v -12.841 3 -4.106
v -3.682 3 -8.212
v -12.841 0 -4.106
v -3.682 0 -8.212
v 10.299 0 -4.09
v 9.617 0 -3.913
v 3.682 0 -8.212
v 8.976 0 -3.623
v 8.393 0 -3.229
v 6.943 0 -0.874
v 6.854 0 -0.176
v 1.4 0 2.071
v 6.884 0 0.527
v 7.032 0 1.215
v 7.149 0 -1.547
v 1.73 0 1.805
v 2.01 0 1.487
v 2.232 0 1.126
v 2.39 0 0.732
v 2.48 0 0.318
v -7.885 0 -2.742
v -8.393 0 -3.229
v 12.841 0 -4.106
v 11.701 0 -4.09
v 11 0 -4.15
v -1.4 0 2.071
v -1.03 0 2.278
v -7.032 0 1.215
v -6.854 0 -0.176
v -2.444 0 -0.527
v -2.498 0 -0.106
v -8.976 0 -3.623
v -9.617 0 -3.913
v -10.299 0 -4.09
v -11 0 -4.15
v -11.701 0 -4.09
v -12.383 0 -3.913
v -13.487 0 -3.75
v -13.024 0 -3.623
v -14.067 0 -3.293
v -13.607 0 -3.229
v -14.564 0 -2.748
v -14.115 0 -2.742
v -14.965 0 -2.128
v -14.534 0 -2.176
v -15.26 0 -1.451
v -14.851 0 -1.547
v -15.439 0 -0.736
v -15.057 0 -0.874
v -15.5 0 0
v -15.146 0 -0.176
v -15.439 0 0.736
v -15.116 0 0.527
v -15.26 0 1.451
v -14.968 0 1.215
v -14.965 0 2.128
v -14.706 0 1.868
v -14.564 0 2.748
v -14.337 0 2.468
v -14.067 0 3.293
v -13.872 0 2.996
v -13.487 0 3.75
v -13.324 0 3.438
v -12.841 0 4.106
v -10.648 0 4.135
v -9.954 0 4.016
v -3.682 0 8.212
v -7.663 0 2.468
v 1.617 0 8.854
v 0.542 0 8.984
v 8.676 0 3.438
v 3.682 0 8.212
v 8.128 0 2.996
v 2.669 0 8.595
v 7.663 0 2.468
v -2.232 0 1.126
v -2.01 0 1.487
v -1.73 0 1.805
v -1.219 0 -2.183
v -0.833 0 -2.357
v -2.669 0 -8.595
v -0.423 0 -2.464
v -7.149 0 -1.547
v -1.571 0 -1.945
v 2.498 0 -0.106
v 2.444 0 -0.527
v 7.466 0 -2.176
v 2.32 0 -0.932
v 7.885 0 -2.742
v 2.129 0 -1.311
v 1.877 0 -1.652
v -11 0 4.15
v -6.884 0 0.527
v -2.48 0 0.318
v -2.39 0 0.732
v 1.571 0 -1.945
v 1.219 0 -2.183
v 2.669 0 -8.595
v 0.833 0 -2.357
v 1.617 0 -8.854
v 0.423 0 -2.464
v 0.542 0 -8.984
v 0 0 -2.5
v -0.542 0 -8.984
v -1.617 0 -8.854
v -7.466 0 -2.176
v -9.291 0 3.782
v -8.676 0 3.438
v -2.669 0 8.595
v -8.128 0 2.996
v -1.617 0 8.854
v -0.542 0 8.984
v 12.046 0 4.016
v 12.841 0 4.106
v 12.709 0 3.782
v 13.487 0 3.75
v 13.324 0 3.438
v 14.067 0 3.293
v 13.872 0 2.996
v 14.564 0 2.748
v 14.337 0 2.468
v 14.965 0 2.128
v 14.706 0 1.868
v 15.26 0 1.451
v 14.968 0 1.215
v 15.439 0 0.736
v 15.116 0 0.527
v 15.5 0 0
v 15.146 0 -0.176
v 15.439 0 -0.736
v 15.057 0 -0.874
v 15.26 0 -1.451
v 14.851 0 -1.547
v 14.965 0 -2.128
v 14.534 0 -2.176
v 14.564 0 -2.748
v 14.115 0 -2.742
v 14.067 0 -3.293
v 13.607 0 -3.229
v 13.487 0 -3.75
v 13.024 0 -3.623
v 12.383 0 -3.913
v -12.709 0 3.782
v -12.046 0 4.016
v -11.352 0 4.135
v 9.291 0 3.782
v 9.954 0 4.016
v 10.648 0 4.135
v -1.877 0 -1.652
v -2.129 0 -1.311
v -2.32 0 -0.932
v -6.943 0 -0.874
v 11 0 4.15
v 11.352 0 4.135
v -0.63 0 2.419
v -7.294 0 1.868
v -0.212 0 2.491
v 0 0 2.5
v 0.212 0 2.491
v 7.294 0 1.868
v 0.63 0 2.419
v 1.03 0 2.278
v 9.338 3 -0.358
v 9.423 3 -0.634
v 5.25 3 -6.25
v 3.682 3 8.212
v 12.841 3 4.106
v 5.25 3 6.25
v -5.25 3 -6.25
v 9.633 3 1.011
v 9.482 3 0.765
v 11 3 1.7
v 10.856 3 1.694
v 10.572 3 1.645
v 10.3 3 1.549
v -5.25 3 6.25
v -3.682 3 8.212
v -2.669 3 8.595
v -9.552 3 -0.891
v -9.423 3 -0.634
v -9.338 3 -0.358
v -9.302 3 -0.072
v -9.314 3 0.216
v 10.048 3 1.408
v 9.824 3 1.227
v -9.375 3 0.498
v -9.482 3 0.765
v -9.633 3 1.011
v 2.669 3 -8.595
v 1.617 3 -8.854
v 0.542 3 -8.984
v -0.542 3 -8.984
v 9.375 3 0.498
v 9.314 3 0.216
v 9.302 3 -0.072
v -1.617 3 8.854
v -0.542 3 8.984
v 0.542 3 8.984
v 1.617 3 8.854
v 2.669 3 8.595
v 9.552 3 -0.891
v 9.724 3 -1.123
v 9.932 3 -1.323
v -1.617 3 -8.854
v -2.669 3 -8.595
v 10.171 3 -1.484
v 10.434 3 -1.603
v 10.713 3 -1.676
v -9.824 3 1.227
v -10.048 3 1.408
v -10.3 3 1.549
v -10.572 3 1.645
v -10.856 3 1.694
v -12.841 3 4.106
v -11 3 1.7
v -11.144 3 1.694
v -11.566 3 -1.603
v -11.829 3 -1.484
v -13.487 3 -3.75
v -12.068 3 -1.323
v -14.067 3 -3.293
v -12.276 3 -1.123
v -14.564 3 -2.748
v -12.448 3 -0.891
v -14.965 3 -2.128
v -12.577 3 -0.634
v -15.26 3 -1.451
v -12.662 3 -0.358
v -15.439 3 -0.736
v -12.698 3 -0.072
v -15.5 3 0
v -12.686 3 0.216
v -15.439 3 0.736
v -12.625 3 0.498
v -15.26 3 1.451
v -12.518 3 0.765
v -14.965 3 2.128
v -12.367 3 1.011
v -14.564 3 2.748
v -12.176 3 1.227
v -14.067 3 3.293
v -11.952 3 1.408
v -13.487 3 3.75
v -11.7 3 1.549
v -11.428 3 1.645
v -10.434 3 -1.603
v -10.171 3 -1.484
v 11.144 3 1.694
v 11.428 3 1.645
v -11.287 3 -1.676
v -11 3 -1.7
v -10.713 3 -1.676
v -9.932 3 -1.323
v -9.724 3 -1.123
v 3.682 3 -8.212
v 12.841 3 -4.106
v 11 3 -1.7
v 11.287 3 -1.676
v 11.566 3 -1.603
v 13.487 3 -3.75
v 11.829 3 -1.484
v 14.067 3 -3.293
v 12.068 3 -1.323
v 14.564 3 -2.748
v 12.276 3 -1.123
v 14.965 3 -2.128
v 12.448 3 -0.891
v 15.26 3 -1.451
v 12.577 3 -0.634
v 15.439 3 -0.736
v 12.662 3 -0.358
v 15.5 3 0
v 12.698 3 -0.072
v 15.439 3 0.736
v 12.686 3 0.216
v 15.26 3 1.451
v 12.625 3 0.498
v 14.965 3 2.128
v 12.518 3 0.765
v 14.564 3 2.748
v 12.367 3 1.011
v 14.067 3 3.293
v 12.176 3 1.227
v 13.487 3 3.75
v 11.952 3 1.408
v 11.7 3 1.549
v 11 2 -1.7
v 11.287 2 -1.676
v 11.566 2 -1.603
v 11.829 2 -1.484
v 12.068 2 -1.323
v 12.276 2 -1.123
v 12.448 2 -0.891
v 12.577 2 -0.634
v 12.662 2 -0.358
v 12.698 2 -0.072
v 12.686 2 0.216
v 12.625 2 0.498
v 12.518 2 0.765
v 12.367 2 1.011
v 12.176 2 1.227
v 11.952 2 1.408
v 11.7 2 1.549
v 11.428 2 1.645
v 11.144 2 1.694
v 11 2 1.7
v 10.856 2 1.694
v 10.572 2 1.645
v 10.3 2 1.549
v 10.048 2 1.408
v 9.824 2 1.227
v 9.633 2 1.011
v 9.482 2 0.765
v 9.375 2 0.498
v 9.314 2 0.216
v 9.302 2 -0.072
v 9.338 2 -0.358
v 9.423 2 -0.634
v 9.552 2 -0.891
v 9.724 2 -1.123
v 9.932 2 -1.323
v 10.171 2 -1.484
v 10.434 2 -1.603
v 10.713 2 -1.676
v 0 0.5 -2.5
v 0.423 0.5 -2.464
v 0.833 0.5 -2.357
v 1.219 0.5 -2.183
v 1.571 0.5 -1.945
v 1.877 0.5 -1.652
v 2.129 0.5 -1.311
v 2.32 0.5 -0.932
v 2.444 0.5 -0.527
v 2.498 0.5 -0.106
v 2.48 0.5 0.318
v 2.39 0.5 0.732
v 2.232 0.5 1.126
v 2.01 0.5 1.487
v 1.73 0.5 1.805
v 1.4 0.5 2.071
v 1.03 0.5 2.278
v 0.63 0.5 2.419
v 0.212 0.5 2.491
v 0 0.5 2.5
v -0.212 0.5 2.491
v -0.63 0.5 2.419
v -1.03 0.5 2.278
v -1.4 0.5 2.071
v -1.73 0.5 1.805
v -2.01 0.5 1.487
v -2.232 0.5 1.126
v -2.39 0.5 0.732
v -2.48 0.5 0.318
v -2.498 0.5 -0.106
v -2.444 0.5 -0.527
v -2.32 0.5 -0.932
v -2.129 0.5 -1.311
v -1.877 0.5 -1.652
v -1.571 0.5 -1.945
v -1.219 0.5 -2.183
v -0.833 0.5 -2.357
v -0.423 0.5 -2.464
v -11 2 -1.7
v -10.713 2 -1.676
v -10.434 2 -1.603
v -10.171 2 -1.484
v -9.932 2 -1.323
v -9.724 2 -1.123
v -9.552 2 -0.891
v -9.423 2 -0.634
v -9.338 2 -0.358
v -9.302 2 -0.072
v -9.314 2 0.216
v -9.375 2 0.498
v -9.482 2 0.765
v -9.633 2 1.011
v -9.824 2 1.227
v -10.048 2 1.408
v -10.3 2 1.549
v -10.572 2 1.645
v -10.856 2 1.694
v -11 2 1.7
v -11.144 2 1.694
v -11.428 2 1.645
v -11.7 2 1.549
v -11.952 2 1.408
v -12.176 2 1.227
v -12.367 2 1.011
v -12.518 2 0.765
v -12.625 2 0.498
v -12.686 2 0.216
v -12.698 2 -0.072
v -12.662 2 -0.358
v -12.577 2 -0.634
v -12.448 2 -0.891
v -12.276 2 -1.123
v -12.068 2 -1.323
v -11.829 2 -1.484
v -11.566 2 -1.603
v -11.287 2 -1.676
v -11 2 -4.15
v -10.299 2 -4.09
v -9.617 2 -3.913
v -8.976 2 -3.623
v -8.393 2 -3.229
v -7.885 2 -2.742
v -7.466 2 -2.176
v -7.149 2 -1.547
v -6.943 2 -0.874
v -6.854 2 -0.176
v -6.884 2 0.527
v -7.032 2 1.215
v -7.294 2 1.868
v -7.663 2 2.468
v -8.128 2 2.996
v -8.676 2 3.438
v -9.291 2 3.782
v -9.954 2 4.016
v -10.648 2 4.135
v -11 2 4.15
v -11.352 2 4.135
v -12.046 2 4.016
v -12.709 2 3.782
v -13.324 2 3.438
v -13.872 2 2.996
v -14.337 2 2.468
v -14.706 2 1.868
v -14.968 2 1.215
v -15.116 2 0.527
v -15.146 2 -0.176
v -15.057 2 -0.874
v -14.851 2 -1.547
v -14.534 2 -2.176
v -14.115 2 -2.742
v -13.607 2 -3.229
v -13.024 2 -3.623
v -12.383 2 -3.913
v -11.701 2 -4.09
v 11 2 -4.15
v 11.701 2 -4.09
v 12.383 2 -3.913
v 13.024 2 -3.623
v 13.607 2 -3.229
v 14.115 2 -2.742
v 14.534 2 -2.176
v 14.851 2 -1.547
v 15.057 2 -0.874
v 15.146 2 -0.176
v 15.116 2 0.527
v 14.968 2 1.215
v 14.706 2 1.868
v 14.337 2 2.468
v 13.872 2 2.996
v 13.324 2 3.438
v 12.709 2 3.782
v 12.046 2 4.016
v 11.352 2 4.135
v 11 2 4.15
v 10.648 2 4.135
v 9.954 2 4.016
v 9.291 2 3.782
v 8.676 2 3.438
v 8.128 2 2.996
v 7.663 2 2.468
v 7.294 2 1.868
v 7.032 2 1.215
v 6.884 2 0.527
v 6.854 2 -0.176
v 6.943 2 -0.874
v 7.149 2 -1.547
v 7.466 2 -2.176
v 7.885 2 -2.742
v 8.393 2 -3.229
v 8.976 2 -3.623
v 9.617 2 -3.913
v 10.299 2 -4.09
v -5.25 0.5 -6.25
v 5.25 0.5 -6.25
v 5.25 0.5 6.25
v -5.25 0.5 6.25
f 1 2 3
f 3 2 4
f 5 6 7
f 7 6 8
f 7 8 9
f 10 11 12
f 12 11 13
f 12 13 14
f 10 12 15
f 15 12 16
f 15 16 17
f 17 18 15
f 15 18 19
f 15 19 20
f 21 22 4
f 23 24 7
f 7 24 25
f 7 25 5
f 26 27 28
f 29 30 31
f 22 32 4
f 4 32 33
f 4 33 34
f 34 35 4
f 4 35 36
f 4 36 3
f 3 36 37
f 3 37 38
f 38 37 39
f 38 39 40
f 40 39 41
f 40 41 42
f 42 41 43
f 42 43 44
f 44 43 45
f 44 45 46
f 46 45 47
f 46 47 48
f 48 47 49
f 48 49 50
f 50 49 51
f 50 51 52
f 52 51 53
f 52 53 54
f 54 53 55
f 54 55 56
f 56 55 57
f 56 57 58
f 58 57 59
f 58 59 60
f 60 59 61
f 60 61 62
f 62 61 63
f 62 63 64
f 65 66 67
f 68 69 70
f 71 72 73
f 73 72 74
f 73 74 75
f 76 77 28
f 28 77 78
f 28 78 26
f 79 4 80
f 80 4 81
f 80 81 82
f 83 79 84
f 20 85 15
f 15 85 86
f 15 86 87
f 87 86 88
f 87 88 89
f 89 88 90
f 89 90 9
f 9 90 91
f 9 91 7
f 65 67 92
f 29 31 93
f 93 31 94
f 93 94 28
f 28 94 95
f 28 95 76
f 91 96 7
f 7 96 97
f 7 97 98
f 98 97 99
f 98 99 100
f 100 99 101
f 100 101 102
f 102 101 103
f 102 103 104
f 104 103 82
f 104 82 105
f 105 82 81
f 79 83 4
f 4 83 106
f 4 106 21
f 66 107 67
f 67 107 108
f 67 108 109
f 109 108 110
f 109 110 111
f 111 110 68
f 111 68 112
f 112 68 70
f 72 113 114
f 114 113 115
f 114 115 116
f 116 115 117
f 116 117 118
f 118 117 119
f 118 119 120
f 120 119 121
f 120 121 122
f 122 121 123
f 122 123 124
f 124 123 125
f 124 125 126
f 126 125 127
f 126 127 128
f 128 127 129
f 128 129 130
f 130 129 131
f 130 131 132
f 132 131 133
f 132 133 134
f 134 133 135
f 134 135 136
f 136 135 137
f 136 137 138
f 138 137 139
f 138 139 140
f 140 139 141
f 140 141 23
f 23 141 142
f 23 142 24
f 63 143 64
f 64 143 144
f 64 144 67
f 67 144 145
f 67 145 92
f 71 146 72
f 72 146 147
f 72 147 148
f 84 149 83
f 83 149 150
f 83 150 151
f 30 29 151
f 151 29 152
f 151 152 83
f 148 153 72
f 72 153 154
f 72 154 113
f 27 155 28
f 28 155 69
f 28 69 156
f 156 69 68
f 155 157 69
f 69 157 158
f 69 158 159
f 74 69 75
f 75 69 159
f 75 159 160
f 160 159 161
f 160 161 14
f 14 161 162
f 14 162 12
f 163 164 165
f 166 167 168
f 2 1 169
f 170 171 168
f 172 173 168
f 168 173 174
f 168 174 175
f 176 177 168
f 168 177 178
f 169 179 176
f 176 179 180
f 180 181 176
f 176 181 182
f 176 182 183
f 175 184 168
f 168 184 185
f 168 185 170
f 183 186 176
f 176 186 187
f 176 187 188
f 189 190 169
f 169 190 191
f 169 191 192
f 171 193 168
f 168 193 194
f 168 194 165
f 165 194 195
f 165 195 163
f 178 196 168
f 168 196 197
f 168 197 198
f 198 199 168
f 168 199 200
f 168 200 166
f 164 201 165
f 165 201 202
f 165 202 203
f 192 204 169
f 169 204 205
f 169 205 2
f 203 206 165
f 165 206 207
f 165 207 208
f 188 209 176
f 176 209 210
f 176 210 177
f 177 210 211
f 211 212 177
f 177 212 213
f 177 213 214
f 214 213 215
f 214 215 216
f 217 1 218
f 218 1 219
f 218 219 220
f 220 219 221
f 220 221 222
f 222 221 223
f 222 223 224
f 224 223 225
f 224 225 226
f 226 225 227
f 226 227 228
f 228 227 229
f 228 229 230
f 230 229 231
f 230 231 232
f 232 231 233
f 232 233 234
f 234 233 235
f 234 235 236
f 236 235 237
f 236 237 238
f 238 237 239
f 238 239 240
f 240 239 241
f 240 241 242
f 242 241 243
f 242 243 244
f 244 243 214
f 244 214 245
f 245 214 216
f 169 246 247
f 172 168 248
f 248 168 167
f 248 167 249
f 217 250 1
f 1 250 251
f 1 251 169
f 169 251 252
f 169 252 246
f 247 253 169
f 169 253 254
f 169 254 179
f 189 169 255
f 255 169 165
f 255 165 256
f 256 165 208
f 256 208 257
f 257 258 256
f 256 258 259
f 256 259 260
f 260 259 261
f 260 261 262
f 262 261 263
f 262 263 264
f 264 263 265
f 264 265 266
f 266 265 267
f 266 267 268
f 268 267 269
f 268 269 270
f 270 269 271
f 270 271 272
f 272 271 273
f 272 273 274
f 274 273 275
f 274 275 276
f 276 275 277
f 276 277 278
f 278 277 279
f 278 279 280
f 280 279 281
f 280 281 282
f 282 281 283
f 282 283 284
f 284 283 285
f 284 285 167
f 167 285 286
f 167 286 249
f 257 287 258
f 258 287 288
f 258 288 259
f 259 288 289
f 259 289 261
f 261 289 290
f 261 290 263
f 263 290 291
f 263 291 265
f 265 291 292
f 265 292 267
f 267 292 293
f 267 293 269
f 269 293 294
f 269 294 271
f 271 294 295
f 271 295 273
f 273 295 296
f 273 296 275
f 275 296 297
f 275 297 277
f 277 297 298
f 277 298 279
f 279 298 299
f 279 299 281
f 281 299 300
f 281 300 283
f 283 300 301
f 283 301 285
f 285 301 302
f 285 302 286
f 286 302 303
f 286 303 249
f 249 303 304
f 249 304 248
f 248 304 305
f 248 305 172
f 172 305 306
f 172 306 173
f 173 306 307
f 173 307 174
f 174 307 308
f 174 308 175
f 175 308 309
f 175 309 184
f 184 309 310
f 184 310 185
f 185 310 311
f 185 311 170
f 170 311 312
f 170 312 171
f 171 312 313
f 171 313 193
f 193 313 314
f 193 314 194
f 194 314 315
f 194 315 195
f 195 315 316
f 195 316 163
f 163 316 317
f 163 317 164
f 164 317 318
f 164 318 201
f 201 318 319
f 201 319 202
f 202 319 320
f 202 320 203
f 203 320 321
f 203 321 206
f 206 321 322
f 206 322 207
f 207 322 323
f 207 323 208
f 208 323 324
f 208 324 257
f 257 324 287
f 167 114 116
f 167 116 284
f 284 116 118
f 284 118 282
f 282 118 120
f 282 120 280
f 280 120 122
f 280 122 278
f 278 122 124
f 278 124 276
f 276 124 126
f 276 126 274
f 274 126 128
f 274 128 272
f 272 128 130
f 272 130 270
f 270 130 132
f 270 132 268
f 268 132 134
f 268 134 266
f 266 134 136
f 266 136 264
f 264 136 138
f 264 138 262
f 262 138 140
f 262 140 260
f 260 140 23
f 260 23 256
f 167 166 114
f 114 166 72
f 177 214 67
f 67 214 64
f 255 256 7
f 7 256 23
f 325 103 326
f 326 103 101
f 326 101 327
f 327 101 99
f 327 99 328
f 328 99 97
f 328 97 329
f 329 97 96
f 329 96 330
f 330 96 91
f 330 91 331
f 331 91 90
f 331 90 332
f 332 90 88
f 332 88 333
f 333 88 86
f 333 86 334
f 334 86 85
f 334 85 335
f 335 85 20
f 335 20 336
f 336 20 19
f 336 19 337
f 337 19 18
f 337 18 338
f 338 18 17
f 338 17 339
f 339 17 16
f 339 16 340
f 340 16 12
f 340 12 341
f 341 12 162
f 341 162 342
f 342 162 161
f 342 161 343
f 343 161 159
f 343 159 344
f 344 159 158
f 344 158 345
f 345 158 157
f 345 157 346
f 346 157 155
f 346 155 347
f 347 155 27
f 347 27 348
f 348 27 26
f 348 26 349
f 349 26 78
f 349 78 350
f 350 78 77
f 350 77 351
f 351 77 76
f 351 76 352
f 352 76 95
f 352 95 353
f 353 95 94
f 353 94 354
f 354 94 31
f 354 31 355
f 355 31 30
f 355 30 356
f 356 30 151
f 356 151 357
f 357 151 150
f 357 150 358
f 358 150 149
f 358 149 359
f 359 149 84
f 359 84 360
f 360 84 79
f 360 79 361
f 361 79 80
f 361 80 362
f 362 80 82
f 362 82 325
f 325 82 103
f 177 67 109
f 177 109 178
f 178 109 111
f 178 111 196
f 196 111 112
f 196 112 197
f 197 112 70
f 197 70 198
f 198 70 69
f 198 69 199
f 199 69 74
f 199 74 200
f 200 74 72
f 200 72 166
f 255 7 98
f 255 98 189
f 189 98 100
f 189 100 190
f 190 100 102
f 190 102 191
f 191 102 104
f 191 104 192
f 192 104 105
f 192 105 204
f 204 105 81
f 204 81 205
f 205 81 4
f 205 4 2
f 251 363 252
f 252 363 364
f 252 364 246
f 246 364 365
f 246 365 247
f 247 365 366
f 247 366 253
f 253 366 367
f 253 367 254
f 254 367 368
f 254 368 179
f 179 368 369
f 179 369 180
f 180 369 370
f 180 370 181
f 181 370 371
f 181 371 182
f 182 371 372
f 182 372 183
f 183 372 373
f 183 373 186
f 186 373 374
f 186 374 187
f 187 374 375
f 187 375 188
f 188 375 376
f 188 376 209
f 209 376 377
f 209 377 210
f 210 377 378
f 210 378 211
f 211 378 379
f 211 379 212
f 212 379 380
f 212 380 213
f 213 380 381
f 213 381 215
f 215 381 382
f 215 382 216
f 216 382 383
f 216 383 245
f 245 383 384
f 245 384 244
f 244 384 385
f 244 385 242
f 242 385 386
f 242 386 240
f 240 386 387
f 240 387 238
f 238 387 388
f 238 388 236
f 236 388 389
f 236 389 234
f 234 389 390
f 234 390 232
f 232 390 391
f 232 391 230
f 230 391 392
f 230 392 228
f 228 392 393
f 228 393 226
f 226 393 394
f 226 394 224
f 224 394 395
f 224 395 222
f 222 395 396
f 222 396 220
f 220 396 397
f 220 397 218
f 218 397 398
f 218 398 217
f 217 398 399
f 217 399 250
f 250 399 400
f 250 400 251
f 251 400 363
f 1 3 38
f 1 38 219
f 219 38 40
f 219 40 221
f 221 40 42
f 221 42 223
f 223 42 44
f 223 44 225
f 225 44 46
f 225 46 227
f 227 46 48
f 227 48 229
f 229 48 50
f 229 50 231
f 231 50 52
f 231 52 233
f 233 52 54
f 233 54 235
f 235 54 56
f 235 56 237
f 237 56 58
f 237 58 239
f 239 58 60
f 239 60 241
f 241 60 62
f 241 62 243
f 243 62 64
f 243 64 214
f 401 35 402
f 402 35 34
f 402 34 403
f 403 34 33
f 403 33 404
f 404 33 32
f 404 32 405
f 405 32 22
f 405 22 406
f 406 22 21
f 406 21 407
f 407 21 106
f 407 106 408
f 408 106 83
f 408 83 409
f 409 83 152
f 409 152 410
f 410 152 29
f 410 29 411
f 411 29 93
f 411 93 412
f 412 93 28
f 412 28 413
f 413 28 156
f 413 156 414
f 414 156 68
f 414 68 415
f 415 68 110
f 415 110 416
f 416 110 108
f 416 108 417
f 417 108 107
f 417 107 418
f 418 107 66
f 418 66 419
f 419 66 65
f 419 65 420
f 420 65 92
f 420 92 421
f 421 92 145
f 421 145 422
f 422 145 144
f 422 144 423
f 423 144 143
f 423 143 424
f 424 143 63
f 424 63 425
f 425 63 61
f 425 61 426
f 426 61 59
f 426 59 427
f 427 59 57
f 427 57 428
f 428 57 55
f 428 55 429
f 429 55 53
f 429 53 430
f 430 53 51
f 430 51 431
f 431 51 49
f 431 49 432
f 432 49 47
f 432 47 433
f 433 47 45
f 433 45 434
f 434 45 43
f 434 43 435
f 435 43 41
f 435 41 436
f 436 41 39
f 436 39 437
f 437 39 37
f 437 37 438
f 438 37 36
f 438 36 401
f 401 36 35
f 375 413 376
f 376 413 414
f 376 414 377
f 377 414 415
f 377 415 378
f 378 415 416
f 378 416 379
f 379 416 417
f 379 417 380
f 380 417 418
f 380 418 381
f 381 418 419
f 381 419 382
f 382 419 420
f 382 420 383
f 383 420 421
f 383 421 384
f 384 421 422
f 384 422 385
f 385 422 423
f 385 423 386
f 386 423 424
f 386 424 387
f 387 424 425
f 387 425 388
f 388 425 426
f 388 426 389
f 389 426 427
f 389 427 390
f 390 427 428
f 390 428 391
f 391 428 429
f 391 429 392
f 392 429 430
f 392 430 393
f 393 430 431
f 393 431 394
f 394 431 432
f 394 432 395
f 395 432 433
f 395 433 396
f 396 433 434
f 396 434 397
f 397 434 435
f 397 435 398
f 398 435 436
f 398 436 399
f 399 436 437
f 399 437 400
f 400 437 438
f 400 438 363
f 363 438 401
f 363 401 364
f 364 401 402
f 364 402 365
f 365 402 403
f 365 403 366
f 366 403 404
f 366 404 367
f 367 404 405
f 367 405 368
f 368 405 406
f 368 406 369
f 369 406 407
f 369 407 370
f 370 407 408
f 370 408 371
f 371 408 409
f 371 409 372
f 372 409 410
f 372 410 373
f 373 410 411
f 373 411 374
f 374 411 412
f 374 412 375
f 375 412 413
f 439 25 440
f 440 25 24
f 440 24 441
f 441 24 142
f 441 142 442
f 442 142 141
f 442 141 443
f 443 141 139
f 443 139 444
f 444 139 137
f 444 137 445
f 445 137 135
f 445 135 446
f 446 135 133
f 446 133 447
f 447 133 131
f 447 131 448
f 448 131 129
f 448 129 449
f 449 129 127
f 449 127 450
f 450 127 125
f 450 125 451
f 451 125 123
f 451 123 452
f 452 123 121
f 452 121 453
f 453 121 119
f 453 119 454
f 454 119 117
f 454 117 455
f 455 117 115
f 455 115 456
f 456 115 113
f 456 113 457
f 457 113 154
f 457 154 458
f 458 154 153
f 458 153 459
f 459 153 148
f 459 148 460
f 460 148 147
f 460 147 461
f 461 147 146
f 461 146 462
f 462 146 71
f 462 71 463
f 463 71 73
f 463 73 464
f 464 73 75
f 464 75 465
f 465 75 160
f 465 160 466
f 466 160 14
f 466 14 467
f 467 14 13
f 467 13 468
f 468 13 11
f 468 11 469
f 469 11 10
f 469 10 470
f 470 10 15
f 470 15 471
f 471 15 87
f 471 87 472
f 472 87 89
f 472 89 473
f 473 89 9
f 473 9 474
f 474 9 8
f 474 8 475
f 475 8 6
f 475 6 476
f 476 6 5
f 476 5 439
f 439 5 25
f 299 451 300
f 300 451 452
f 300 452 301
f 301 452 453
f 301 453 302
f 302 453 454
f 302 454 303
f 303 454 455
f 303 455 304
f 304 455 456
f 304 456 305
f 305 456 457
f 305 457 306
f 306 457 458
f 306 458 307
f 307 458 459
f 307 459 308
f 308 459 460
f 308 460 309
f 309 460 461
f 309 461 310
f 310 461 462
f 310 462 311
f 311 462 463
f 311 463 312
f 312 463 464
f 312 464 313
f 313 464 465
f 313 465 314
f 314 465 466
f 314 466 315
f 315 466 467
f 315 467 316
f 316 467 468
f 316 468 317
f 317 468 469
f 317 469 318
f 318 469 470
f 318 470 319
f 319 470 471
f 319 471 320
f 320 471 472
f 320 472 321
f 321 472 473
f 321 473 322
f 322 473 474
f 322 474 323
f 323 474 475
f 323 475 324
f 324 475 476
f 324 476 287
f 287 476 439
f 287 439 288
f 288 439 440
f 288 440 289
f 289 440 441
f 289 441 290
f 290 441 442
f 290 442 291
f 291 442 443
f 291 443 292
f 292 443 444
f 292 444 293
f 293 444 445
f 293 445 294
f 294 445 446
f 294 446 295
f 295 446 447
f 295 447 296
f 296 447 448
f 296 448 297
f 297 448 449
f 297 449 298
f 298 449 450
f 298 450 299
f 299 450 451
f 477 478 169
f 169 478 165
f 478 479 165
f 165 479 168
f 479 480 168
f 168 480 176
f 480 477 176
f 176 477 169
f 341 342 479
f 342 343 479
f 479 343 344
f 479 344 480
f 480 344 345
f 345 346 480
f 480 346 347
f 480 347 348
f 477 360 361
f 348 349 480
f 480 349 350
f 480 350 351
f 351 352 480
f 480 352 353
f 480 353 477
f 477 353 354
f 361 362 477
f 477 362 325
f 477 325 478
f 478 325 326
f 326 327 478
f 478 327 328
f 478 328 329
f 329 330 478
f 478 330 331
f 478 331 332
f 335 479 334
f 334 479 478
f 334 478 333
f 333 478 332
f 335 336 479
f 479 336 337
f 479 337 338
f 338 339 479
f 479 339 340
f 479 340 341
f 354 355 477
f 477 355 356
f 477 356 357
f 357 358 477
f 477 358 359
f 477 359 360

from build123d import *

# Parameters (mm, degrees)
SKETCH1_R           = 1.7
SKETCH1_R_2         = 2.5
BOSS_EXTRUDE1_DEPTH = 3
SKETCH1_11_R        = 4.15
CUT_EXTRUDE1_DEPTH  = 2
CUT_EXTRUDE2_START  = 0.5
CUT_EXTRUDE2_DEPTH  = 2.5


with BuildPart() as part:
    # Sketch1 → Boss-Extrude1 (new body)
    with BuildSketch(Plane(origin=(0, 0, 0), x_dir=(1, 0, 0), z_dir=(0, 1, 0))):
        with BuildLine():
            Line((12.840909091, 4.106221343), (3.681818182, 8.212442686))
            ThreePointArc((3.681818182, 8.212442686), (0, 9), (-3.681818182, 8.212442686))
            Line((-3.681818182, 8.212442686), (-12.840909091, 4.106221343))
            ThreePointArc((-12.840909091, 4.106221343), (-15.5, 0), (-12.840909091, -4.106221343))
            Line((-12.840909091, -4.106221343), (-3.681818182, -8.212442686))
            ThreePointArc((-3.681818182, -8.212442686), (0, -9), (3.681818182, -8.212442686))
            Line((3.681818182, -8.212442686), (12.840909091, -4.106221343))
            ThreePointArc((12.840909091, -4.106221343), (15.5, 0), (12.840909091, 4.106221343))
        make_face()
        with Locations(Location((-11, 0, 0), (0, 0, 270))):
            Circle(SKETCH1_R, mode=Mode.SUBTRACT)
        with Locations(Location((0, 0, 0), (0, 0, 270))):
            Circle(SKETCH1_R_2, mode=Mode.SUBTRACT)
        with Locations(Location((11, 0, 0), (0, 0, 270))):
            Circle(SKETCH1_R, mode=Mode.SUBTRACT)
    extrude(amount=BOSS_EXTRUDE1_DEPTH)

    # Sketch1<11> → Cut-Extrude1 (cut)
    with BuildSketch(Plane(origin=(0, 0, 0), x_dir=(1, 0, 0), z_dir=(0, 1, 0))):
        with Locations(Location((-11, 0, 0), (0, 0, 270))):
            Circle(SKETCH1_11_R)
        with Locations(Location((11, 0, 0), (0, 0, 270))):
            Circle(SKETCH1_11_R)
    extrude(amount=CUT_EXTRUDE1_DEPTH, mode=Mode.SUBTRACT)

    # Sketch1<12> → Cut-Extrude2 (cut)
    with BuildSketch(Plane(origin=(0, 0, 0), x_dir=(1, 0, 0), z_dir=(0, 1, 0)).offset(CUT_EXTRUDE2_START)):
        with BuildLine():
            Line((-5.25, 6.25), (-5.25, 0))
            Line((-5.25, 0), (-2.5, 0))
            ThreePointArc((-2.5, 0), (0, 2.5), (2.5, 0))
            Line((2.5, 0), (5.25, 0))
            Line((5.25, 0), (5.25, 6.25))
            Line((5.25, 6.25), (-5.25, 6.25))
        make_face()
        with BuildLine():
            Line((-2.5, 0), (-5.25, 0))
            Line((-5.25, 0), (-5.25, -6.25))
            Line((-5.25, -6.25), (5.25, -6.25))
            Line((5.25, -6.25), (5.25, 0))
            Line((5.25, 0), (2.5, 0))
            ThreePointArc((2.5, 0), (0, -2.5), (-2.5, 0))
        make_face()
    extrude(amount=CUT_EXTRUDE2_DEPTH, mode=Mode.SUBTRACT)


solid = part.part
